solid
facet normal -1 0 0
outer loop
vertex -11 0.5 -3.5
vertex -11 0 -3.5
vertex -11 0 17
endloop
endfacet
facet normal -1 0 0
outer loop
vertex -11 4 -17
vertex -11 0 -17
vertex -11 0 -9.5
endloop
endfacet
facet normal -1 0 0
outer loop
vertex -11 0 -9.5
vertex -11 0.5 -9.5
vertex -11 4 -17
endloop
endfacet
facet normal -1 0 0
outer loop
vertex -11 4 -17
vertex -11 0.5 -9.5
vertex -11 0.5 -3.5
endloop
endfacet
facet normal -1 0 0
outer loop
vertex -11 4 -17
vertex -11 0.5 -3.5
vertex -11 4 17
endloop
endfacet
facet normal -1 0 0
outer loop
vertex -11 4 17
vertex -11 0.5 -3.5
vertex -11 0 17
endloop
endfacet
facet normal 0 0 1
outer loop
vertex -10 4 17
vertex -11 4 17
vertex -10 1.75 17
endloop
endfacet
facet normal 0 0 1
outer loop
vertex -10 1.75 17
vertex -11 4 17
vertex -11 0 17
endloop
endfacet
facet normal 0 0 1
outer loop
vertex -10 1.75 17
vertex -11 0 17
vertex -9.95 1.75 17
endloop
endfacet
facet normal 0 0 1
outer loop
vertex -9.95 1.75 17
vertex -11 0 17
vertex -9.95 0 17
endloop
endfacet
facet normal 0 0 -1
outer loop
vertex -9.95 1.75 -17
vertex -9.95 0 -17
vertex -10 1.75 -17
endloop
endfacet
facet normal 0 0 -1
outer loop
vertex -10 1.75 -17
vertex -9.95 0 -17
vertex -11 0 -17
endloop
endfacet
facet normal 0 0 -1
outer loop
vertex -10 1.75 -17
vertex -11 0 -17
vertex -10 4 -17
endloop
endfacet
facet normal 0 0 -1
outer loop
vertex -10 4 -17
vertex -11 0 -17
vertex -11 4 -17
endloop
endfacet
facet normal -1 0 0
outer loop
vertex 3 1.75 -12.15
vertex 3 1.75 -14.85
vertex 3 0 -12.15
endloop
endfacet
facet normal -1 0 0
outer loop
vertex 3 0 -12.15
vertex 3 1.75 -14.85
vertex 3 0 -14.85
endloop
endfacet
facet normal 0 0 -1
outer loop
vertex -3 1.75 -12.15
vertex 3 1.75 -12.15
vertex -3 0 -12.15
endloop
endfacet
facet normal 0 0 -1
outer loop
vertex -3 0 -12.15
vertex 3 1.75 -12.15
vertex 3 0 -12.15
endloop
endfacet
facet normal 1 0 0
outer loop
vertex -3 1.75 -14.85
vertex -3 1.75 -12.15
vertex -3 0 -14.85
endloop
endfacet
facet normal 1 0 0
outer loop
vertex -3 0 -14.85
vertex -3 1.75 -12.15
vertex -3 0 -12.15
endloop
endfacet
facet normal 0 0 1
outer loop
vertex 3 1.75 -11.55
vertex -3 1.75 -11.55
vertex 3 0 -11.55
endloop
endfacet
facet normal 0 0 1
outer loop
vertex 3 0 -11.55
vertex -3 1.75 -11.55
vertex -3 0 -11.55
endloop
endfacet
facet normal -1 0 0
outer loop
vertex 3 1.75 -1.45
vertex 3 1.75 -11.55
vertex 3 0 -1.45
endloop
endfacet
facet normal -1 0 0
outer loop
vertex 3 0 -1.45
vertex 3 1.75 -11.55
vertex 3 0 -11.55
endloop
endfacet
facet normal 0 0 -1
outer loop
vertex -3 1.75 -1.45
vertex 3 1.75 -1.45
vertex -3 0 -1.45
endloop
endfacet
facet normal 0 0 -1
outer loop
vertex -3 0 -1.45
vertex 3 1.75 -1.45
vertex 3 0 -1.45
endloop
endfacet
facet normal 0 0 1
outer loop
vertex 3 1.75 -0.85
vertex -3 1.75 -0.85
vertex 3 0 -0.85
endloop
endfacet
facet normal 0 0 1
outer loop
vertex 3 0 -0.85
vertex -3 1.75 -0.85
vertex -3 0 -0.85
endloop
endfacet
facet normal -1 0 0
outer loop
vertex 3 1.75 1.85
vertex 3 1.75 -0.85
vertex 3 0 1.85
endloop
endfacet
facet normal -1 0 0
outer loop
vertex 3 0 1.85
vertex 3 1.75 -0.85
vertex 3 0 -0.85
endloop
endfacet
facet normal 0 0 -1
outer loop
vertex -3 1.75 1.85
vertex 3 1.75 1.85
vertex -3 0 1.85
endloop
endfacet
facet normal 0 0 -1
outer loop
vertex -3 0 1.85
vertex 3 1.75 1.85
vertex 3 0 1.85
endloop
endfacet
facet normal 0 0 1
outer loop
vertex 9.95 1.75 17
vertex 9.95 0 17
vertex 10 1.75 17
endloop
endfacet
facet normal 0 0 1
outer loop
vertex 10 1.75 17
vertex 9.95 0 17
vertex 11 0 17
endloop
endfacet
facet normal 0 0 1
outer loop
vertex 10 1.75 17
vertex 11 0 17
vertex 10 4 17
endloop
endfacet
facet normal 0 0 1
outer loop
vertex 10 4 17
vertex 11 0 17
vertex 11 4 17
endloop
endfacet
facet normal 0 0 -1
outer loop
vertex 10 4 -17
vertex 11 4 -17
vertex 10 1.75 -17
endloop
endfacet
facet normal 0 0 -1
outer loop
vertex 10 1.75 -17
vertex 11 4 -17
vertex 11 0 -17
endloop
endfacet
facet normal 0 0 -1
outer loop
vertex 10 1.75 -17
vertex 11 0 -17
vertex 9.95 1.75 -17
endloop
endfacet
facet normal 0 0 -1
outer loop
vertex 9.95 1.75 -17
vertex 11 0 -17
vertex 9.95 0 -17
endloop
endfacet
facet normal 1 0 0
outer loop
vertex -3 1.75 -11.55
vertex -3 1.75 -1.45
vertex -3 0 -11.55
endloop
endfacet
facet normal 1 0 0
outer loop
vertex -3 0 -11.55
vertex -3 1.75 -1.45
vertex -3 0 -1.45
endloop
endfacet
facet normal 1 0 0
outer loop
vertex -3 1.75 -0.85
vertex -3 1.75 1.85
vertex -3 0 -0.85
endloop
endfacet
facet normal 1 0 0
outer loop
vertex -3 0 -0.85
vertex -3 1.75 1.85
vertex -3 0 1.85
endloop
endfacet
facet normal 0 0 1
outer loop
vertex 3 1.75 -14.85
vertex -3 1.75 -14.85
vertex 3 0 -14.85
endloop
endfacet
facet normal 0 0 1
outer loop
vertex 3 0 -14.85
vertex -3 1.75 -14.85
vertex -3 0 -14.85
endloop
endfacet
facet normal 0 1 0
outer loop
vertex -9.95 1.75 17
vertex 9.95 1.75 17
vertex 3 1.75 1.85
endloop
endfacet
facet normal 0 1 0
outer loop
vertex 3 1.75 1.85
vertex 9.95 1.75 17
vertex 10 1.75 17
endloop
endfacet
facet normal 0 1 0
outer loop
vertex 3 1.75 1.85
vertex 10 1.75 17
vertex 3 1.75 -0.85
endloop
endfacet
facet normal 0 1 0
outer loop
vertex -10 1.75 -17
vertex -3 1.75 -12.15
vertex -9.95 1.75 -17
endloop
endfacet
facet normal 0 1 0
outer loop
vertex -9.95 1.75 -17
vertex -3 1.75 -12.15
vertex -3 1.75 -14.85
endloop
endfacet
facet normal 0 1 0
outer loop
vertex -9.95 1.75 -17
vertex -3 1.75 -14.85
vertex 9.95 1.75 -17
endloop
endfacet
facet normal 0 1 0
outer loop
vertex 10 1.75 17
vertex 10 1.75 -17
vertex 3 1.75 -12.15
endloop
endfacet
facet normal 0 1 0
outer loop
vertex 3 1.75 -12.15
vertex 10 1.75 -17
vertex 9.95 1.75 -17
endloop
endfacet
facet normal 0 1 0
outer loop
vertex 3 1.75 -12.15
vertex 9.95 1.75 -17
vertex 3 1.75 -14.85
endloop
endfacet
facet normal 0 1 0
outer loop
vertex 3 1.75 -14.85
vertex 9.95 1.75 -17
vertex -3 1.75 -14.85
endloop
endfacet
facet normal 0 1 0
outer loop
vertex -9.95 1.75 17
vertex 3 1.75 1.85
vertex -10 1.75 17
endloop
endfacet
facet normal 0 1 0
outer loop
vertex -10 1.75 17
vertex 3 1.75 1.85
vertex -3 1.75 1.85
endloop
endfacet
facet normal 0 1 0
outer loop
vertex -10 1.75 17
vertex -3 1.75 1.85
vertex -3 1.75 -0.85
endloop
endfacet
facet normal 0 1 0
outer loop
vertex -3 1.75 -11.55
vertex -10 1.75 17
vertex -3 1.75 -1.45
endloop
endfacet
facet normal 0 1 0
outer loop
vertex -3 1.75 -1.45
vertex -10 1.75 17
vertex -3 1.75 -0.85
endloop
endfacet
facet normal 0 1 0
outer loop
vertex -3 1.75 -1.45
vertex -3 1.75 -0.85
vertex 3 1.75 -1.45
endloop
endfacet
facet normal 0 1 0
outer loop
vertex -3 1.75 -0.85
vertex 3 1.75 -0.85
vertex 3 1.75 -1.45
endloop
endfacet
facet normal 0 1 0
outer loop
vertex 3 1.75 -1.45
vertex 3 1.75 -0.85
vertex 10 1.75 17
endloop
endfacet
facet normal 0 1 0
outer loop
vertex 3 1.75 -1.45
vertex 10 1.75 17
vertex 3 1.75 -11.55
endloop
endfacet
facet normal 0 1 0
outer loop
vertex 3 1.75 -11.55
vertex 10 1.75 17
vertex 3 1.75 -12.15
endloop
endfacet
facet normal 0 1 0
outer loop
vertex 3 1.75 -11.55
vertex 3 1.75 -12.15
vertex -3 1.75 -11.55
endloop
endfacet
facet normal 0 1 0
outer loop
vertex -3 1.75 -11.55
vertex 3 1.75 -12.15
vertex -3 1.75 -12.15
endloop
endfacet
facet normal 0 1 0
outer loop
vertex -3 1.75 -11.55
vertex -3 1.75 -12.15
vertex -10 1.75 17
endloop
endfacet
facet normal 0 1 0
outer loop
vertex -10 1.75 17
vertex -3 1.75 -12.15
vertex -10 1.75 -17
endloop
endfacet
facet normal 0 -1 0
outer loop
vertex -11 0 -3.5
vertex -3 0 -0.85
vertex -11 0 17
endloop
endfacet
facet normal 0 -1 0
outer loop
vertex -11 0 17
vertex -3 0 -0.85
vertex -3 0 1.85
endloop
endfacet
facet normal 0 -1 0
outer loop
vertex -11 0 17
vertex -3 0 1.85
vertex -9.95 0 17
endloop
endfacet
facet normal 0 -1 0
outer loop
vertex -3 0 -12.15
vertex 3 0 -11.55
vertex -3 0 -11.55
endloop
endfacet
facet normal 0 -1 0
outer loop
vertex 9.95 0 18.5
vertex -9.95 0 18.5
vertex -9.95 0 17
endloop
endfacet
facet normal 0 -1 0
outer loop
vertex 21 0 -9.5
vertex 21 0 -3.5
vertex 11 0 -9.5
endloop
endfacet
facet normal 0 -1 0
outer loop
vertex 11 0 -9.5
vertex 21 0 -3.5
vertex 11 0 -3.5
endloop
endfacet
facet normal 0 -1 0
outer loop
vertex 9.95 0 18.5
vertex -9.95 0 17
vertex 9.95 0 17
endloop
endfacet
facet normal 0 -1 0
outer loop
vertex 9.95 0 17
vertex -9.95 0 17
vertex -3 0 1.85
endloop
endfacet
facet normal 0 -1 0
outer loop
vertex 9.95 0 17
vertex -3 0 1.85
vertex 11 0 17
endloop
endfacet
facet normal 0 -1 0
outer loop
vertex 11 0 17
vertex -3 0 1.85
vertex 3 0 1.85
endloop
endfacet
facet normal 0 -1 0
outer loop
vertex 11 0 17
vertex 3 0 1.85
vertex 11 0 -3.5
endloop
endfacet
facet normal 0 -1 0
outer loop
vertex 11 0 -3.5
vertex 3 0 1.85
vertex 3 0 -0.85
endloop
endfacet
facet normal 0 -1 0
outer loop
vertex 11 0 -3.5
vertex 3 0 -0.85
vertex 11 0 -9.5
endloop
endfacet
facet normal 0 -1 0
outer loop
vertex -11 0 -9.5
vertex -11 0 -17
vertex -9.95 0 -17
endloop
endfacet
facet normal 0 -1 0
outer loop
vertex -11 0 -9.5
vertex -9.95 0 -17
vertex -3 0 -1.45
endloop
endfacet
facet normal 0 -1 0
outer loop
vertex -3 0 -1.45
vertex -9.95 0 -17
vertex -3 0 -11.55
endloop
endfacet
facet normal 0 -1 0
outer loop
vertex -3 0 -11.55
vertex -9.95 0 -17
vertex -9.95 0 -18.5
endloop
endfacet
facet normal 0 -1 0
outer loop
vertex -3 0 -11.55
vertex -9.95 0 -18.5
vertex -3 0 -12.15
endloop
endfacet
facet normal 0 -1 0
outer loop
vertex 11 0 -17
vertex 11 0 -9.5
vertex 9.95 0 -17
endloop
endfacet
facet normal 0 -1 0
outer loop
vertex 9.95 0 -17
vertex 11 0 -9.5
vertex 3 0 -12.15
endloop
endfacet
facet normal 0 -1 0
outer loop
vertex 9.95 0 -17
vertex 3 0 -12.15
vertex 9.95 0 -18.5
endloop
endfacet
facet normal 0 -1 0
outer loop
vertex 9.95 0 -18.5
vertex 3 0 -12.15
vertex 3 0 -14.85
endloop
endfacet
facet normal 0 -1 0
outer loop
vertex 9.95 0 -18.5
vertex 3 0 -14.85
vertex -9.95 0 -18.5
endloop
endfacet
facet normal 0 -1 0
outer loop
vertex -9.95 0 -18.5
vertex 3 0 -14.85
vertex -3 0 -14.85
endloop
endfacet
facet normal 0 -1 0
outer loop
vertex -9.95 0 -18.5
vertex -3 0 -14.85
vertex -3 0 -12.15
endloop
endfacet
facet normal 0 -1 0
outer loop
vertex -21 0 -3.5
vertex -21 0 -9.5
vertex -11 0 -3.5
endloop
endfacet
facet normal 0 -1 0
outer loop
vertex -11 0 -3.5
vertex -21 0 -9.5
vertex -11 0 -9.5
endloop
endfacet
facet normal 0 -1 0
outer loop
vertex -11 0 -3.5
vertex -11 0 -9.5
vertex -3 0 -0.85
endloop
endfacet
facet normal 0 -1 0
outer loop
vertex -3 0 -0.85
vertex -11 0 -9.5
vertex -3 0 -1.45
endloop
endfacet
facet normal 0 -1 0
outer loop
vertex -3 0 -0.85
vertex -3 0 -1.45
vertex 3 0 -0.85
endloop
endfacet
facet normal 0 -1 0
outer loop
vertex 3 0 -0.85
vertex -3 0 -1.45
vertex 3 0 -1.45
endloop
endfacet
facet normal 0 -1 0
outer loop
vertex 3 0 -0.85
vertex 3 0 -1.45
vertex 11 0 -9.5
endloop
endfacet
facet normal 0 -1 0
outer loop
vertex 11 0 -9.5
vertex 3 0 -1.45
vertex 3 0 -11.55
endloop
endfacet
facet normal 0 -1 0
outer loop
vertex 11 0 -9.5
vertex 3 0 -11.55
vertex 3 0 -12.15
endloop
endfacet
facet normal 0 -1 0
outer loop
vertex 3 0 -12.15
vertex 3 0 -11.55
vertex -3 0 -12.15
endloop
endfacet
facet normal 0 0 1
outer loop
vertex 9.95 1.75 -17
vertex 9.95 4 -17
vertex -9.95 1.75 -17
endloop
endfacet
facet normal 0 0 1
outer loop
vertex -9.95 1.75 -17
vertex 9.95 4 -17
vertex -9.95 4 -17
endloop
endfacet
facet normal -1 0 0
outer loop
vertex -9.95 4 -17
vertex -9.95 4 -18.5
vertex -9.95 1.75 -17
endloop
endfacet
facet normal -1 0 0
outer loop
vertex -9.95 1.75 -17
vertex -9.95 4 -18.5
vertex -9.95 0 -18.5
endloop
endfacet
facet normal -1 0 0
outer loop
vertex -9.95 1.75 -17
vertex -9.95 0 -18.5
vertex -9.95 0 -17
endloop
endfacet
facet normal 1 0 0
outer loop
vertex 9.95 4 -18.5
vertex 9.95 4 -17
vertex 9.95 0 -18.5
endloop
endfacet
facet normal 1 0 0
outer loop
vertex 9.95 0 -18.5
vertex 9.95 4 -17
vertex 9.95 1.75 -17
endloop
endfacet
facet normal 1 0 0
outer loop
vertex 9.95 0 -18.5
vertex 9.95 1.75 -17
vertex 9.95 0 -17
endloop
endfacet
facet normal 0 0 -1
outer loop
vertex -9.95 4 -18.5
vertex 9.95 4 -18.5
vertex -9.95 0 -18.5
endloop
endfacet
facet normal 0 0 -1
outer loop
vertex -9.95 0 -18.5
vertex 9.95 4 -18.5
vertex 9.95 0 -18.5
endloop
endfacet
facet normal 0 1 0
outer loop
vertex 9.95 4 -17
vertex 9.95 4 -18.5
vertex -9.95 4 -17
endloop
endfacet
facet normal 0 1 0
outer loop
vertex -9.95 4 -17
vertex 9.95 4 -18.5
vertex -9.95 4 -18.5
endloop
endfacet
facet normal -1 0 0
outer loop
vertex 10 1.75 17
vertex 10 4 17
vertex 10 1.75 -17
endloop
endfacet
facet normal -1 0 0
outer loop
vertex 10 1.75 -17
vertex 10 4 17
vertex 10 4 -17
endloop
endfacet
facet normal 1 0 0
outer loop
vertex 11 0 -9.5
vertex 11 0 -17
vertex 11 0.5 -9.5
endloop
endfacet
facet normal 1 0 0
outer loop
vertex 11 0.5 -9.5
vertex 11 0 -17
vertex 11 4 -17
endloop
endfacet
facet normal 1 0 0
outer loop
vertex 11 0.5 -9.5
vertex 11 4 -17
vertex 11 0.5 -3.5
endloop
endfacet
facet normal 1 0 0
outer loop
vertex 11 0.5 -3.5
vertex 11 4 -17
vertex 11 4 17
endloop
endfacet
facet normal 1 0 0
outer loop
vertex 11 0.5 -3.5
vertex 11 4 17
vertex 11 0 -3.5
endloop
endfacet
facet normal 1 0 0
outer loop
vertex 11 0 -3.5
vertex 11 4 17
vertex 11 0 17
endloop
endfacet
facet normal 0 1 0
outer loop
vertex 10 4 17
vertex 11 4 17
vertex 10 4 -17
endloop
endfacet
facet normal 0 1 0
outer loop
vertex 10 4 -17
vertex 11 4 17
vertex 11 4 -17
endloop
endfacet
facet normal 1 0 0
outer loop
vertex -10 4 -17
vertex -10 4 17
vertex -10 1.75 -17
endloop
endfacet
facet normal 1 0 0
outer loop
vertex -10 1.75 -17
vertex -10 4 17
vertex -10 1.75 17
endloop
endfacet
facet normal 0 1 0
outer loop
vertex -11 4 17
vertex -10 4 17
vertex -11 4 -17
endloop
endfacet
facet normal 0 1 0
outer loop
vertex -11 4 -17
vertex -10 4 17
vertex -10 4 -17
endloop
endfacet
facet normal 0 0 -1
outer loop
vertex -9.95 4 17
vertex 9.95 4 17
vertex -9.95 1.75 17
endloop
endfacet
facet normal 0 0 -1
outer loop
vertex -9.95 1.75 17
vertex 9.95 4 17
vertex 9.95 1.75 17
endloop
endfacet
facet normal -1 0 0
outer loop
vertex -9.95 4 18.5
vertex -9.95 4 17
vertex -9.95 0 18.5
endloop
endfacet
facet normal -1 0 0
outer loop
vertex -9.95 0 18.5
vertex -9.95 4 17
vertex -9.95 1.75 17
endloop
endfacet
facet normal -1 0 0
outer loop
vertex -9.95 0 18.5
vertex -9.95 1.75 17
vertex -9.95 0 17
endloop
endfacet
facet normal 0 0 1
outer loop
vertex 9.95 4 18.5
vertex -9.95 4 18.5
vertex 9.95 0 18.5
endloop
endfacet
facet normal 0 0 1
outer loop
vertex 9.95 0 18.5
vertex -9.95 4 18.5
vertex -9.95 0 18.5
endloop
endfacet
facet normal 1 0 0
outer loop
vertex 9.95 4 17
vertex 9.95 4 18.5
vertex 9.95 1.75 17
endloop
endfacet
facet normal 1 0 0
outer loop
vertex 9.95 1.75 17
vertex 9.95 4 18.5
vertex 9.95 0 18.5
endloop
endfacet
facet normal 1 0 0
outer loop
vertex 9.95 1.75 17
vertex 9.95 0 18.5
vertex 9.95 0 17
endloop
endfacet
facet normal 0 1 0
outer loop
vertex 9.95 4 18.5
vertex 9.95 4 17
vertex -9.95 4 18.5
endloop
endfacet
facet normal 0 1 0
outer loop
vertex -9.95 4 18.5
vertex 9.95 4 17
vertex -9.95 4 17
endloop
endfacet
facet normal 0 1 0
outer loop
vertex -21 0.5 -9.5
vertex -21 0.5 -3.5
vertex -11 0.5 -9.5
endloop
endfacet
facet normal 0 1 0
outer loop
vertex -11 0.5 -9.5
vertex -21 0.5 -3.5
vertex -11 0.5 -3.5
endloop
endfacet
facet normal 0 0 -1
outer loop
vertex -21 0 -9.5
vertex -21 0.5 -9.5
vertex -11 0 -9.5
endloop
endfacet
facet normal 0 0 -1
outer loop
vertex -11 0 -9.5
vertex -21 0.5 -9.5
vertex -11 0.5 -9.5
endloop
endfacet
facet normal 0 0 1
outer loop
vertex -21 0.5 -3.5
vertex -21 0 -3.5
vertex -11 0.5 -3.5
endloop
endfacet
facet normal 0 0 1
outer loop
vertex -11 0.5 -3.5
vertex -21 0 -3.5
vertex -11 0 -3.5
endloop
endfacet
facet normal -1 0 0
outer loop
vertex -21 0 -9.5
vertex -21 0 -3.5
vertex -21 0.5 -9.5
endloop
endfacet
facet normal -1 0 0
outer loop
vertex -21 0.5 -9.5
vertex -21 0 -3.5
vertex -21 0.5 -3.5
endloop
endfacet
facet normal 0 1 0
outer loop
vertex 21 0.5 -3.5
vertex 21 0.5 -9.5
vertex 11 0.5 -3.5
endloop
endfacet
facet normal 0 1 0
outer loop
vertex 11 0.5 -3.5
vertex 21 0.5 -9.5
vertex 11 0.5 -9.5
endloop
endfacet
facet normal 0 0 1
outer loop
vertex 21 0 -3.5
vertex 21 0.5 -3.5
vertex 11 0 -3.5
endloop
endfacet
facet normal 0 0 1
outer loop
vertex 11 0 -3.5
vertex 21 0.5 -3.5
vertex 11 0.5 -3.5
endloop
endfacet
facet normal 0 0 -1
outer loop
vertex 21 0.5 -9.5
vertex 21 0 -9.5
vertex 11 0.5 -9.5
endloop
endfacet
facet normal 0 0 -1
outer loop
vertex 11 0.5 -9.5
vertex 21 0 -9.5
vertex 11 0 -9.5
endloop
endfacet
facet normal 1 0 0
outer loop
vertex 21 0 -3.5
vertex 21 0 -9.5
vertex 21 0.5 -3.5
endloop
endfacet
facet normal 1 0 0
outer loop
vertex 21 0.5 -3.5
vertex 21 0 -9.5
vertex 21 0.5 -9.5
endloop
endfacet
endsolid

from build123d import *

# Parameters (mm, degrees)
BOSS_EXTRUDE1_DEPTH = 1.75
SKETCH4_W           = 1
SKETCH4_H           = 34
SKETCH4_W_2         = 19.9
SKETCH4_H_2         = 1.5
BOSS_EXTRUDE3_DEPTH = 4
SKETCH7_W           = 6
SKETCH7_H           = 0.5
BOSS_EXTRUDE5_DEPTH = 10
SKETCH9_W           = 6
SKETCH9_H           = 0.5
BOSS_EXTRUDE6_DEPTH = 10


with BuildPart() as part:
    # Sketch2 → Boss-Extrude1 (new body)
    with BuildSketch(Plane(origin=(0, 0, 0), x_dir=(1, 0, 0), z_dir=(0, 1, 0))):
        Polygon((0, 14.85), (0, 17), (-10, 17), (-10, 0), (-3, 0), (-3, 0.85), (0, 0.85), (0, 1.45), (-3, 1.45), (-3, 11.55), (0, 11.55), (0, 12.15), (-3, 12.15), (-3, 14.85), align=None)
        Polygon((-3, 0), (-10, 0), (-10, -17), (0, -17), (0, -1.85), (-3, -1.85), align=None)
        Polygon((10, -17), (10, 0), (3, 0), (3, -1.85), (0, -1.85), (0, -17), align=None)
        Polygon((10, 17), (0, 17), (0, 14.85), (3, 14.85), (3, 12.15), (0, 12.15), (0, 11.55), (3, 11.55), (3, 1.45), (0, 1.45), (0, 0.85), (3, 0.85), (3, 0), (10, 0), align=None)
    extrude(amount=BOSS_EXTRUDE1_DEPTH)

    # Sketch4 → Boss-Extrude3 (add)
    with BuildSketch(Plane(origin=(0, 0, 0), x_dir=(1, 0, 0), z_dir=(0, 1, 0))):
        with Locations((-10.5, 0)):
            Rectangle(SKETCH4_W, SKETCH4_H)
        with Locations((10.5, 0)):
            Rectangle(SKETCH4_W, SKETCH4_H)
        with Locations((0, 17.75)):
            Rectangle(SKETCH4_W_2, SKETCH4_H_2)
        with Locations((0, -17.75)):
            Rectangle(SKETCH4_W_2, SKETCH4_H_2)
    extrude(amount=BOSS_EXTRUDE3_DEPTH)

    # Sketch7 → Boss-Extrude5 (add)
    with BuildSketch(Plane.ZY.offset(11)):
        with Locations((-6.5, 0.25)):
            Rectangle(SKETCH7_W, SKETCH7_H)
    extrude(amount=BOSS_EXTRUDE5_DEPTH)

    # Sketch9 → Boss-Extrude6 (add)
    with BuildSketch(Plane(origin=(11, 0, 0), x_dir=(0, 0, -1), z_dir=(1, 0, 0))):
        with Locations((6.5, 0.25)):
            Rectangle(SKETCH9_W, SKETCH9_H)
    extrude(amount=BOSS_EXTRUDE6_DEPTH)


solid = part.part
